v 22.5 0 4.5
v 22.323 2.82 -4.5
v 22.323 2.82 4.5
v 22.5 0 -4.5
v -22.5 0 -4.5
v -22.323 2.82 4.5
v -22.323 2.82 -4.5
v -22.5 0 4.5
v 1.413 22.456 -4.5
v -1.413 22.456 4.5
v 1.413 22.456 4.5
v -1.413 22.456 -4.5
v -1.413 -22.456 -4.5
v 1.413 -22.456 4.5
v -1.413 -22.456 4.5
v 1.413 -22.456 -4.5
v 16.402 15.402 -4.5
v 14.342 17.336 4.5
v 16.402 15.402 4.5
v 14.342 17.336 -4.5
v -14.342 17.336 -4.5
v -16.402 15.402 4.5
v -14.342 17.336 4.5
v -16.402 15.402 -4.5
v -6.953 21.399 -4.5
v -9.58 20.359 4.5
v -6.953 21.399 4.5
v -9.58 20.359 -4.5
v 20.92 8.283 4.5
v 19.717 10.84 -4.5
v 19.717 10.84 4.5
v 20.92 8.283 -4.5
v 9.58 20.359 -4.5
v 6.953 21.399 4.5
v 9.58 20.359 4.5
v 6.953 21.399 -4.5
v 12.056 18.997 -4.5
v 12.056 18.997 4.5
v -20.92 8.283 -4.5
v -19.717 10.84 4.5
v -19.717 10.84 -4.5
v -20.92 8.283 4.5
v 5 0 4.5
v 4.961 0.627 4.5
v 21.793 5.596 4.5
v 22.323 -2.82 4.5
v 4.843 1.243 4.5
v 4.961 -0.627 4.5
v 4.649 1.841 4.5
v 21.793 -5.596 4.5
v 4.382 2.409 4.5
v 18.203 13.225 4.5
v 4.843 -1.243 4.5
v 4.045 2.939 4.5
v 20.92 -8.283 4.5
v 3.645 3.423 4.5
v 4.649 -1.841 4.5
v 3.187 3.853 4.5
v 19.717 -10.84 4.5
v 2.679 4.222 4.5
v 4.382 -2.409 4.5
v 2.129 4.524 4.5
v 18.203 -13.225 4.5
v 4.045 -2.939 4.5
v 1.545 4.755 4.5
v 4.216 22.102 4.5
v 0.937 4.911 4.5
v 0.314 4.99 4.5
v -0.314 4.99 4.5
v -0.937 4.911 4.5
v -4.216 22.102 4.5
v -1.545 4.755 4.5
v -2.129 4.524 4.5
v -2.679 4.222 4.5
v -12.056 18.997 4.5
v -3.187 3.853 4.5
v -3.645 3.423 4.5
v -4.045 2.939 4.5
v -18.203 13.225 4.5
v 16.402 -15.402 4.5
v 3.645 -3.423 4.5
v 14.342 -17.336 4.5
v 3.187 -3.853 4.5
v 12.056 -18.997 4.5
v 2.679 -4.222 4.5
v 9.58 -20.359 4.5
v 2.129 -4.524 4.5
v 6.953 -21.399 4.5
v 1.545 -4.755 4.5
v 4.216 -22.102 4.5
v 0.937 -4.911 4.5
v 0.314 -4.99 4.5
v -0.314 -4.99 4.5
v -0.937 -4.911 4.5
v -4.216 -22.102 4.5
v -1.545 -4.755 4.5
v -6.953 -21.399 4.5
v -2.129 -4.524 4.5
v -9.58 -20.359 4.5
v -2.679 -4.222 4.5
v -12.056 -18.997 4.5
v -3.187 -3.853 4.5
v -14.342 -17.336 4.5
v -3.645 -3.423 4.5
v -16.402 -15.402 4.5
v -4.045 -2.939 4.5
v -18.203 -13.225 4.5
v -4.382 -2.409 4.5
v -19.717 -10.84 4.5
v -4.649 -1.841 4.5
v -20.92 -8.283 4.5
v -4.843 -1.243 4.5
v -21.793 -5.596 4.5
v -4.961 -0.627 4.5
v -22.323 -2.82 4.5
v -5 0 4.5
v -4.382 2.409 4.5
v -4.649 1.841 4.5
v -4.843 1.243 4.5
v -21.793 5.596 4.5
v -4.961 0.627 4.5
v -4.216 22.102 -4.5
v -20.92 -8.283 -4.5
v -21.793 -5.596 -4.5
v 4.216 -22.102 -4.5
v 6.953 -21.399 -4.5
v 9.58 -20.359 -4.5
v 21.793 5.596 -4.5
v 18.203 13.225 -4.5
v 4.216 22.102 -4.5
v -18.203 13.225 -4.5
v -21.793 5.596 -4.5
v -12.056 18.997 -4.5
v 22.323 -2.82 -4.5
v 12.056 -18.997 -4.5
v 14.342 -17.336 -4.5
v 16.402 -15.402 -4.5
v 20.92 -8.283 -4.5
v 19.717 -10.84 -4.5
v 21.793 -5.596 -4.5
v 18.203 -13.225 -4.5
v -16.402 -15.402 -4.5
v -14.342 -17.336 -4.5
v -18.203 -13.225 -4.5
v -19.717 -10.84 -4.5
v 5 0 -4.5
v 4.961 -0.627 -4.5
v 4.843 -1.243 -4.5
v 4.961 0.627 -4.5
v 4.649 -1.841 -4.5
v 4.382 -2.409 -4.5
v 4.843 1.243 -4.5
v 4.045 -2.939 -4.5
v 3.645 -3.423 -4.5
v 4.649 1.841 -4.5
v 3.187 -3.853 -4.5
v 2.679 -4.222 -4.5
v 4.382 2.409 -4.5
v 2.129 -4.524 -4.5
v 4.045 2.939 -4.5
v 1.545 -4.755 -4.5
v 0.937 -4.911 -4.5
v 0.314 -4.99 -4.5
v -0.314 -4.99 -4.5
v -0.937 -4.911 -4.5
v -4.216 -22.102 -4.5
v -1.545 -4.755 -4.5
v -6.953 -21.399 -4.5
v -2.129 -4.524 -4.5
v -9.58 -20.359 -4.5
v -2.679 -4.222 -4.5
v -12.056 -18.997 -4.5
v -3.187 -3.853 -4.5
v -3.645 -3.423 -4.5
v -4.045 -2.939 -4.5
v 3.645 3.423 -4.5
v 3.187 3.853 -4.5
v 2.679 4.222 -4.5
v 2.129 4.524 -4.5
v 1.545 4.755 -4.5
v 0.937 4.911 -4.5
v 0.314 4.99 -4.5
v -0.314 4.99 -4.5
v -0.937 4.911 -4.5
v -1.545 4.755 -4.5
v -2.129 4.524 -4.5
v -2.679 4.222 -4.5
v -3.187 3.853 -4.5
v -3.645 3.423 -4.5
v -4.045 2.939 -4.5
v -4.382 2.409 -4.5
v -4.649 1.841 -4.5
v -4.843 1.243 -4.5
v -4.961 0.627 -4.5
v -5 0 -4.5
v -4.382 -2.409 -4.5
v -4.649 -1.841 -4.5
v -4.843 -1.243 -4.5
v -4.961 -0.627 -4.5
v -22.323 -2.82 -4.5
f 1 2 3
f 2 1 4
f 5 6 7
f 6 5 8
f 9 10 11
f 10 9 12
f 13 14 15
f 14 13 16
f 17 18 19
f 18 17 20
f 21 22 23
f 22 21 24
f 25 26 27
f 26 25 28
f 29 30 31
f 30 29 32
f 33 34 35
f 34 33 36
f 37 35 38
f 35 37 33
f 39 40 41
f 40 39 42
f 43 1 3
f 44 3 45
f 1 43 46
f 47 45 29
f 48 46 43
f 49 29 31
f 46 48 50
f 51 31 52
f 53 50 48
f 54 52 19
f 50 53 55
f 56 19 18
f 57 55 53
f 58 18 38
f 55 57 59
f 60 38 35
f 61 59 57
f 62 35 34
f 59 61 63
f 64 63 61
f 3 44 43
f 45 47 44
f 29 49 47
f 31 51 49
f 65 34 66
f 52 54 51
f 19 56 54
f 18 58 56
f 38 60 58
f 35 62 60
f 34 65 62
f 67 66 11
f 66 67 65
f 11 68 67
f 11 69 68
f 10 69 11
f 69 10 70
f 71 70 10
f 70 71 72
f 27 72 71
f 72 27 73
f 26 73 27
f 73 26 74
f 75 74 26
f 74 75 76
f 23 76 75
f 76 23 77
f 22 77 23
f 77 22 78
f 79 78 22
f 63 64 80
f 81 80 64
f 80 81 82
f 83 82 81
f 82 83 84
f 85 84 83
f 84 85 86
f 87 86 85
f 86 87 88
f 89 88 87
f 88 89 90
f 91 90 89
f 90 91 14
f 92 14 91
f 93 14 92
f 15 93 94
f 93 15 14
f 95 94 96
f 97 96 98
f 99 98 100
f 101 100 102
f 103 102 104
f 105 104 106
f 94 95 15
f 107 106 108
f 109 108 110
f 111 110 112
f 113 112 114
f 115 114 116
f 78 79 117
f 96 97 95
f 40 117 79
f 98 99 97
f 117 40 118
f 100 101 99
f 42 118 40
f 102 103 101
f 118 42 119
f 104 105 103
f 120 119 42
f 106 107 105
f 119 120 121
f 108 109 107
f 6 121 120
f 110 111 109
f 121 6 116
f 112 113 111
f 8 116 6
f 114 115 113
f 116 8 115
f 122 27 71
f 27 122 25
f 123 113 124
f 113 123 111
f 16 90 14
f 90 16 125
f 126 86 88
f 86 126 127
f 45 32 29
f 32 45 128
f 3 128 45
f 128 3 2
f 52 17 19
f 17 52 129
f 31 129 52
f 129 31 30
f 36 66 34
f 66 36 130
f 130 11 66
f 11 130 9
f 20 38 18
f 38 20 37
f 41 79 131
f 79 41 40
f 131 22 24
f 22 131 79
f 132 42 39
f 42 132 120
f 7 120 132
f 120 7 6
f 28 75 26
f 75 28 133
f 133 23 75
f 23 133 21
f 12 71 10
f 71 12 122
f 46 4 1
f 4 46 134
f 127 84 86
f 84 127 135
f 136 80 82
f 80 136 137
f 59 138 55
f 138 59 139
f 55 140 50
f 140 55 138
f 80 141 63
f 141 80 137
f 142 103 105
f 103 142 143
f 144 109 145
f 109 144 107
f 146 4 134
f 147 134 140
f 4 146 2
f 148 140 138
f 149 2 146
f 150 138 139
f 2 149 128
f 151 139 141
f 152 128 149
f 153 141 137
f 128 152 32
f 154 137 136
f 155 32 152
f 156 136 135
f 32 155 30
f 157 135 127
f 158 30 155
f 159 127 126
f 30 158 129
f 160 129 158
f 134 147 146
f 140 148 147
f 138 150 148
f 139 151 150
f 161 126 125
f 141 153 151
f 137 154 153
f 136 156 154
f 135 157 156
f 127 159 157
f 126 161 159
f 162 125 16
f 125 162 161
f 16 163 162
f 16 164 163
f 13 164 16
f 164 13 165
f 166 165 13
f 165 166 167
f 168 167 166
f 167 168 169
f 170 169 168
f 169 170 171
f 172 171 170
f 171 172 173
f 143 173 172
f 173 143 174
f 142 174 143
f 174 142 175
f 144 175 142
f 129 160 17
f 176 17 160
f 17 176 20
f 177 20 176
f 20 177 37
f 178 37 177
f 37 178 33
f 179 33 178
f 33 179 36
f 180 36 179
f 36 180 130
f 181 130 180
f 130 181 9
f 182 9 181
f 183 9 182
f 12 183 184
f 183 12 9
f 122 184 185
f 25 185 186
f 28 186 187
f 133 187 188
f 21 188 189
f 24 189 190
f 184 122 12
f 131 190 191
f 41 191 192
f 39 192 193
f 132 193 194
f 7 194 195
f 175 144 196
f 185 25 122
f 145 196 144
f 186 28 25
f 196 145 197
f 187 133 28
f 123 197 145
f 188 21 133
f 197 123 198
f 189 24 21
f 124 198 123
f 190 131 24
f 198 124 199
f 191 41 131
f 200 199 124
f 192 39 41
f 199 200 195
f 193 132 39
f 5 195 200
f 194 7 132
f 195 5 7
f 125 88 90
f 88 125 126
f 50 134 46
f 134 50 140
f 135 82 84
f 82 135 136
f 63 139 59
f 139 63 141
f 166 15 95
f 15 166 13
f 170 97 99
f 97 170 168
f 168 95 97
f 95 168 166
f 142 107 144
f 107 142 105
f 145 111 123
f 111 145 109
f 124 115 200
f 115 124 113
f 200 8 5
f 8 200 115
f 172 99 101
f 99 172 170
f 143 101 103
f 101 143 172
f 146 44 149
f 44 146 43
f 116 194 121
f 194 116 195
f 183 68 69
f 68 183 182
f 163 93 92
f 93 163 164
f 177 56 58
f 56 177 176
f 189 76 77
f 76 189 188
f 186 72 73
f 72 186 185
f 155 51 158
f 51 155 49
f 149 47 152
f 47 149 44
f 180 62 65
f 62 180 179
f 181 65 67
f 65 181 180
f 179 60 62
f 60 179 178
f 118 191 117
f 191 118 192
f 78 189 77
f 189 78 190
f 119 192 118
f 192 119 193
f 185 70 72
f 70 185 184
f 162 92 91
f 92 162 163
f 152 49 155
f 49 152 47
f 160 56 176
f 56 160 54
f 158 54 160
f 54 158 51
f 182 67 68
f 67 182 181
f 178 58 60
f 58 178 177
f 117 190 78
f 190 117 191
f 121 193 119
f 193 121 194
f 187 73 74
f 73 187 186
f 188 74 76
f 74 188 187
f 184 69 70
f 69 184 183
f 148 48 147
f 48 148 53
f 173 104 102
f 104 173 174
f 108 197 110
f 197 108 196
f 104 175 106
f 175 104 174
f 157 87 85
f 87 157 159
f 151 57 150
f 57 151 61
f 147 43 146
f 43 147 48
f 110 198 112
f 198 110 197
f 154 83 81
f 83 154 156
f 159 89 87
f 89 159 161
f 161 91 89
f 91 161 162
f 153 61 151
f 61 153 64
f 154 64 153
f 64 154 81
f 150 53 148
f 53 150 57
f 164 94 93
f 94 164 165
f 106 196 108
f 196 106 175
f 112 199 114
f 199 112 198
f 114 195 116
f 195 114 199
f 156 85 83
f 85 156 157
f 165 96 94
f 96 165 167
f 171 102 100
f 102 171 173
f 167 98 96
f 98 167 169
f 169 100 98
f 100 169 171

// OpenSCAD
$fn = 50;


difference() {
	union() {
		translate(v = [0, 0, -4.5000000000]) {
			cylinder(h = 9, r = 22.5000000000);
		}
	}
	union() {
		translate(v = [0, 0, -100.0000000000]) {
			cylinder(h = 200, r = 5);
		}
	}
}
